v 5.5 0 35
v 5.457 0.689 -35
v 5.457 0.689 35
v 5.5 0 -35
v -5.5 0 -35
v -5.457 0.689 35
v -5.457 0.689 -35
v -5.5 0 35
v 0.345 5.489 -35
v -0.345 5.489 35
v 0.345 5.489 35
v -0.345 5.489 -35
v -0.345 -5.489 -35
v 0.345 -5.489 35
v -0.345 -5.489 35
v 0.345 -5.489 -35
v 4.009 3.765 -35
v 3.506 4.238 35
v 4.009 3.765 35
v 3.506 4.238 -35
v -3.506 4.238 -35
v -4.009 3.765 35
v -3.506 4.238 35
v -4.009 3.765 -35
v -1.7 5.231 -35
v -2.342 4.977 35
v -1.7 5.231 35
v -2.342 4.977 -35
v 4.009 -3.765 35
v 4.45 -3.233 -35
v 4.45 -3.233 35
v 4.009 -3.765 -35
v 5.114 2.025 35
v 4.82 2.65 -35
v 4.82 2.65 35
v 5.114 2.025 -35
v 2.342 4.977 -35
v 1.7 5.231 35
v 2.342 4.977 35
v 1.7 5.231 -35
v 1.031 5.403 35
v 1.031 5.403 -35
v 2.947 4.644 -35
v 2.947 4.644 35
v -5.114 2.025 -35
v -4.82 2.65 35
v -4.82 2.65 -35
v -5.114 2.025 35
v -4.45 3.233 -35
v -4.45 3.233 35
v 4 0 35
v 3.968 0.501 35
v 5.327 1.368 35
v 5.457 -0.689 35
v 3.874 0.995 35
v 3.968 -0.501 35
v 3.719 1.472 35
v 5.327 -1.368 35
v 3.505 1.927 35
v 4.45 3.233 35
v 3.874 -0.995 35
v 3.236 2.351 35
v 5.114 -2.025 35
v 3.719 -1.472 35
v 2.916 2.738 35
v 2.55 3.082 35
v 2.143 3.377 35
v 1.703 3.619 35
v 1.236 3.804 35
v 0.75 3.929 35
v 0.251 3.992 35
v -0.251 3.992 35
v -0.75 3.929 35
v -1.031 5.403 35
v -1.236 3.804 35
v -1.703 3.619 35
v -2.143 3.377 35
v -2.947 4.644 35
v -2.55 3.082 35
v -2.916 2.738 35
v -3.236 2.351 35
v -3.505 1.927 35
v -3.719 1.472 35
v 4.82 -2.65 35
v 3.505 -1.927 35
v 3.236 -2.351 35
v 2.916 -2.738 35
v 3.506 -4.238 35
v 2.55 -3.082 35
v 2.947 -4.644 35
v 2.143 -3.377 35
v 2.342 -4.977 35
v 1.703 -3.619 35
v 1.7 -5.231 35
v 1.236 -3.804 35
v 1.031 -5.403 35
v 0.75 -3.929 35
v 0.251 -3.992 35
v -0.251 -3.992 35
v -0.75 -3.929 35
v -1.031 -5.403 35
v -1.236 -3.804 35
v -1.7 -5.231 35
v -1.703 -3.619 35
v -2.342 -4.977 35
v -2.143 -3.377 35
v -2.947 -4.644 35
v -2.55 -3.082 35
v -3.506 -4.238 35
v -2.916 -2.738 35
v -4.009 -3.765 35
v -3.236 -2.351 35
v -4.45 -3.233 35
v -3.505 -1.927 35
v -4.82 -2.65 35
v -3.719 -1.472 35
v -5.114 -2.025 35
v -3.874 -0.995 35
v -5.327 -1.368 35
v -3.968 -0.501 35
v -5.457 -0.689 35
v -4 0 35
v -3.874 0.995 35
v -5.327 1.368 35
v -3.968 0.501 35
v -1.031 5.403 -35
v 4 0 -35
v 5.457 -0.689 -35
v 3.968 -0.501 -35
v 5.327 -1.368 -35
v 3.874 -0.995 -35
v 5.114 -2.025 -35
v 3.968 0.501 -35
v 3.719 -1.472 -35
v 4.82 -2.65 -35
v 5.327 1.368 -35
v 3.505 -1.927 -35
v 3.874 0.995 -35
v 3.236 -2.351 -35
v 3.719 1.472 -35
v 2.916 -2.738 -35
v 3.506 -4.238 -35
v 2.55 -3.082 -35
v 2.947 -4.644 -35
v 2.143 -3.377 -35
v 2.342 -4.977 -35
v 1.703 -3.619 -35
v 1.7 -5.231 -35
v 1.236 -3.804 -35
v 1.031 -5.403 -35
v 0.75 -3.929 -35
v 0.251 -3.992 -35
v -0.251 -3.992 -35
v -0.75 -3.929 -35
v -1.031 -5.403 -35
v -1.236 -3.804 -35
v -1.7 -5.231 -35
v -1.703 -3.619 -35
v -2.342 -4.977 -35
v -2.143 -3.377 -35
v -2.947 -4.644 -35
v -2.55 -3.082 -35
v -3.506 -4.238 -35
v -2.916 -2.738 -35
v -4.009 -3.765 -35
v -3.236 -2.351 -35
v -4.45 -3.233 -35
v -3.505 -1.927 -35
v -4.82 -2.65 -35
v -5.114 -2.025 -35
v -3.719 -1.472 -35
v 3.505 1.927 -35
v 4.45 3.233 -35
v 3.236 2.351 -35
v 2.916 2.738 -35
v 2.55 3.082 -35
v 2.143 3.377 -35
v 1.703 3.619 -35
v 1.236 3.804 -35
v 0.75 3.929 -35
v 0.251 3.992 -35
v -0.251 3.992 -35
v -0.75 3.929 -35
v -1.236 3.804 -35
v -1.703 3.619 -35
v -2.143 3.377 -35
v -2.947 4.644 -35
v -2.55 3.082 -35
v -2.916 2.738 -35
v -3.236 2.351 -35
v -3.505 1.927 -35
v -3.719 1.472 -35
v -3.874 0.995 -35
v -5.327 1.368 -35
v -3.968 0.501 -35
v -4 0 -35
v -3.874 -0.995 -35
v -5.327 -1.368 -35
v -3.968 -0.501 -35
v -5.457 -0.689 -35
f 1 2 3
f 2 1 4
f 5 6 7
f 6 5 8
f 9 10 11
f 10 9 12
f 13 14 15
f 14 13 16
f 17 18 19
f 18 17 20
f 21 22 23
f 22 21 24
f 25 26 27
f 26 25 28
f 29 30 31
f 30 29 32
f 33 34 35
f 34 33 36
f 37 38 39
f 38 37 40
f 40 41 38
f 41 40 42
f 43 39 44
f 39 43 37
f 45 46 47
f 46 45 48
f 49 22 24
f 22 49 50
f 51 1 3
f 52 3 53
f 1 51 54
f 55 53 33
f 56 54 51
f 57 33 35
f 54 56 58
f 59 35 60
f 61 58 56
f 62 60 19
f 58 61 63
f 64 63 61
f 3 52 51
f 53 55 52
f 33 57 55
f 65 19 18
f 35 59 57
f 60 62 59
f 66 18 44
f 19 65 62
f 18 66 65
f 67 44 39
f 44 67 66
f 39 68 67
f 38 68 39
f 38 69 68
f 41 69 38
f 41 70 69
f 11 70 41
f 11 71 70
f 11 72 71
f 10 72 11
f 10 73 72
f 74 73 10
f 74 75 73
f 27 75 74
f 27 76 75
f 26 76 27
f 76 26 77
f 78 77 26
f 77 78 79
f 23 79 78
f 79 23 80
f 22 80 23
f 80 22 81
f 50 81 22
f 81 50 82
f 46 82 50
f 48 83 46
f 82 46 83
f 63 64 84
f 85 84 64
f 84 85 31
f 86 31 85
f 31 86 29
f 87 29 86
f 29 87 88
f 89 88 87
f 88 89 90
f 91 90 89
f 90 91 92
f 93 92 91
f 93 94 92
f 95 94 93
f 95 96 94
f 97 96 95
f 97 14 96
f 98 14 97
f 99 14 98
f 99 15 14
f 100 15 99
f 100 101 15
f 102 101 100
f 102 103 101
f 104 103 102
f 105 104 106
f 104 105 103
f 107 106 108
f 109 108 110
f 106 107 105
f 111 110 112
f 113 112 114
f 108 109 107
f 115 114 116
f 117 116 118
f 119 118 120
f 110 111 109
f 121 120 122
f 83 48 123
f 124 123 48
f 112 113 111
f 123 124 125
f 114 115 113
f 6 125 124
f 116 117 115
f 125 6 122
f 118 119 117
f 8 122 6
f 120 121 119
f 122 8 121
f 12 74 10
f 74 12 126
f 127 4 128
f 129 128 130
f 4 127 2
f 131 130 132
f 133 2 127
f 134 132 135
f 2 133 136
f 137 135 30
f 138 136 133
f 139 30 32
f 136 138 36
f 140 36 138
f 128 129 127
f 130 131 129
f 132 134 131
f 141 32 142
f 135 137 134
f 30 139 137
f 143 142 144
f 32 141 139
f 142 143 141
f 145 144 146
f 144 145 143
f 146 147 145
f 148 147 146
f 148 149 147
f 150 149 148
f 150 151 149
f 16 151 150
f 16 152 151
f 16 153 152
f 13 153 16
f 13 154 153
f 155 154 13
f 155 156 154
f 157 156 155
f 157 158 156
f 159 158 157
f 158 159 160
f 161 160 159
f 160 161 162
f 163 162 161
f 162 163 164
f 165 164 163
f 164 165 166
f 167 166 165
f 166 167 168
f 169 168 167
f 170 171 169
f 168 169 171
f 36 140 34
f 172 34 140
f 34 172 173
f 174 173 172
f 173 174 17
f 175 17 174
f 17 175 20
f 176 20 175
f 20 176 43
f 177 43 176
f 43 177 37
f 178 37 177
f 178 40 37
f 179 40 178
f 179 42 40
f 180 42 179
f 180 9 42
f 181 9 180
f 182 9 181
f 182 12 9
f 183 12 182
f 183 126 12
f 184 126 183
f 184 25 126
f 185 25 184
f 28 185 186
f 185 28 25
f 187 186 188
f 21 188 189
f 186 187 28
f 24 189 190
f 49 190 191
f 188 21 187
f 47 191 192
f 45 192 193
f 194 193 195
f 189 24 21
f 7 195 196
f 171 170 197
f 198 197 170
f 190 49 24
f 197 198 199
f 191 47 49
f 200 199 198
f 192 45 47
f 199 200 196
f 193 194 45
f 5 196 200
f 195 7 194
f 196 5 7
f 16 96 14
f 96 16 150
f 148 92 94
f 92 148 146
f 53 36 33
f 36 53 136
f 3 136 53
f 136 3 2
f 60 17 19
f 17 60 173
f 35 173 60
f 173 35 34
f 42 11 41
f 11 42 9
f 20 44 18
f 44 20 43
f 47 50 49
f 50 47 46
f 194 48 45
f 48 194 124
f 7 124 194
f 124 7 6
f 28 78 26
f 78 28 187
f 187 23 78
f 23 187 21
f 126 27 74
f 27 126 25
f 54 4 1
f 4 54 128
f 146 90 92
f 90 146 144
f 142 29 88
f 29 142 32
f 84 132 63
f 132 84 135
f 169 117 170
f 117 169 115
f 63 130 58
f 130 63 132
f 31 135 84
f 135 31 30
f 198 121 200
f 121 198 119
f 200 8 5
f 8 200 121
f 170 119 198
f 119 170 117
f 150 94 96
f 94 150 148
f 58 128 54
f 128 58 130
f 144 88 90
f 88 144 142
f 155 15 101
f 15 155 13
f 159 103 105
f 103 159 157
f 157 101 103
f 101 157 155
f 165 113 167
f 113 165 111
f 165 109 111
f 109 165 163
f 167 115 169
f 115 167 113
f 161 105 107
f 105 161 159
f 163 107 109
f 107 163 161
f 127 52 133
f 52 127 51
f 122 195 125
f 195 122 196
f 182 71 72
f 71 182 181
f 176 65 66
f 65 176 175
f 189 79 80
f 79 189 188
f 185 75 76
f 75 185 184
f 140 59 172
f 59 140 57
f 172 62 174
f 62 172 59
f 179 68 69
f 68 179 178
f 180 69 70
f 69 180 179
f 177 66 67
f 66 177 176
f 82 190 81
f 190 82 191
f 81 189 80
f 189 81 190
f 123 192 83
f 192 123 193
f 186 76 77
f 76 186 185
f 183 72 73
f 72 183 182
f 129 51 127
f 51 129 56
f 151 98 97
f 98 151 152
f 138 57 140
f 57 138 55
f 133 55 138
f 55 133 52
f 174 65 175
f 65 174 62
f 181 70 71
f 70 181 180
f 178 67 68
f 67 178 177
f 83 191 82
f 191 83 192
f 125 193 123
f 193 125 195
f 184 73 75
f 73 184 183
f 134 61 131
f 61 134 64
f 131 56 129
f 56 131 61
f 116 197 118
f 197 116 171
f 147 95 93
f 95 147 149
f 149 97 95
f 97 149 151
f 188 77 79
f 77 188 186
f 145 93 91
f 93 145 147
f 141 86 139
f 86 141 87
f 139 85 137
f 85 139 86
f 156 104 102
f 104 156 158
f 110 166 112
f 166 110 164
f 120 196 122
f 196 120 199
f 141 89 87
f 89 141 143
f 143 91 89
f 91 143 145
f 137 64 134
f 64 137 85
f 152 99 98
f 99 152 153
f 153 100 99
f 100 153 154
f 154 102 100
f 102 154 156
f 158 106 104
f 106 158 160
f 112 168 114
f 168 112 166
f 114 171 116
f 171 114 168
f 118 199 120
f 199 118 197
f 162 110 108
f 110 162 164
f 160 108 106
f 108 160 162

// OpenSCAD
$fn = 50;


difference() {
	union() {
		translate(v = [0, 0, -35.0000000000]) {
			cylinder(h = 70, r = 5.5000000000);
		}
	}
	union() {
		translate(v = [0, 0, -100.0000000000]) {
			cylinder(h = 200, r = 4);
		}
	}
}
